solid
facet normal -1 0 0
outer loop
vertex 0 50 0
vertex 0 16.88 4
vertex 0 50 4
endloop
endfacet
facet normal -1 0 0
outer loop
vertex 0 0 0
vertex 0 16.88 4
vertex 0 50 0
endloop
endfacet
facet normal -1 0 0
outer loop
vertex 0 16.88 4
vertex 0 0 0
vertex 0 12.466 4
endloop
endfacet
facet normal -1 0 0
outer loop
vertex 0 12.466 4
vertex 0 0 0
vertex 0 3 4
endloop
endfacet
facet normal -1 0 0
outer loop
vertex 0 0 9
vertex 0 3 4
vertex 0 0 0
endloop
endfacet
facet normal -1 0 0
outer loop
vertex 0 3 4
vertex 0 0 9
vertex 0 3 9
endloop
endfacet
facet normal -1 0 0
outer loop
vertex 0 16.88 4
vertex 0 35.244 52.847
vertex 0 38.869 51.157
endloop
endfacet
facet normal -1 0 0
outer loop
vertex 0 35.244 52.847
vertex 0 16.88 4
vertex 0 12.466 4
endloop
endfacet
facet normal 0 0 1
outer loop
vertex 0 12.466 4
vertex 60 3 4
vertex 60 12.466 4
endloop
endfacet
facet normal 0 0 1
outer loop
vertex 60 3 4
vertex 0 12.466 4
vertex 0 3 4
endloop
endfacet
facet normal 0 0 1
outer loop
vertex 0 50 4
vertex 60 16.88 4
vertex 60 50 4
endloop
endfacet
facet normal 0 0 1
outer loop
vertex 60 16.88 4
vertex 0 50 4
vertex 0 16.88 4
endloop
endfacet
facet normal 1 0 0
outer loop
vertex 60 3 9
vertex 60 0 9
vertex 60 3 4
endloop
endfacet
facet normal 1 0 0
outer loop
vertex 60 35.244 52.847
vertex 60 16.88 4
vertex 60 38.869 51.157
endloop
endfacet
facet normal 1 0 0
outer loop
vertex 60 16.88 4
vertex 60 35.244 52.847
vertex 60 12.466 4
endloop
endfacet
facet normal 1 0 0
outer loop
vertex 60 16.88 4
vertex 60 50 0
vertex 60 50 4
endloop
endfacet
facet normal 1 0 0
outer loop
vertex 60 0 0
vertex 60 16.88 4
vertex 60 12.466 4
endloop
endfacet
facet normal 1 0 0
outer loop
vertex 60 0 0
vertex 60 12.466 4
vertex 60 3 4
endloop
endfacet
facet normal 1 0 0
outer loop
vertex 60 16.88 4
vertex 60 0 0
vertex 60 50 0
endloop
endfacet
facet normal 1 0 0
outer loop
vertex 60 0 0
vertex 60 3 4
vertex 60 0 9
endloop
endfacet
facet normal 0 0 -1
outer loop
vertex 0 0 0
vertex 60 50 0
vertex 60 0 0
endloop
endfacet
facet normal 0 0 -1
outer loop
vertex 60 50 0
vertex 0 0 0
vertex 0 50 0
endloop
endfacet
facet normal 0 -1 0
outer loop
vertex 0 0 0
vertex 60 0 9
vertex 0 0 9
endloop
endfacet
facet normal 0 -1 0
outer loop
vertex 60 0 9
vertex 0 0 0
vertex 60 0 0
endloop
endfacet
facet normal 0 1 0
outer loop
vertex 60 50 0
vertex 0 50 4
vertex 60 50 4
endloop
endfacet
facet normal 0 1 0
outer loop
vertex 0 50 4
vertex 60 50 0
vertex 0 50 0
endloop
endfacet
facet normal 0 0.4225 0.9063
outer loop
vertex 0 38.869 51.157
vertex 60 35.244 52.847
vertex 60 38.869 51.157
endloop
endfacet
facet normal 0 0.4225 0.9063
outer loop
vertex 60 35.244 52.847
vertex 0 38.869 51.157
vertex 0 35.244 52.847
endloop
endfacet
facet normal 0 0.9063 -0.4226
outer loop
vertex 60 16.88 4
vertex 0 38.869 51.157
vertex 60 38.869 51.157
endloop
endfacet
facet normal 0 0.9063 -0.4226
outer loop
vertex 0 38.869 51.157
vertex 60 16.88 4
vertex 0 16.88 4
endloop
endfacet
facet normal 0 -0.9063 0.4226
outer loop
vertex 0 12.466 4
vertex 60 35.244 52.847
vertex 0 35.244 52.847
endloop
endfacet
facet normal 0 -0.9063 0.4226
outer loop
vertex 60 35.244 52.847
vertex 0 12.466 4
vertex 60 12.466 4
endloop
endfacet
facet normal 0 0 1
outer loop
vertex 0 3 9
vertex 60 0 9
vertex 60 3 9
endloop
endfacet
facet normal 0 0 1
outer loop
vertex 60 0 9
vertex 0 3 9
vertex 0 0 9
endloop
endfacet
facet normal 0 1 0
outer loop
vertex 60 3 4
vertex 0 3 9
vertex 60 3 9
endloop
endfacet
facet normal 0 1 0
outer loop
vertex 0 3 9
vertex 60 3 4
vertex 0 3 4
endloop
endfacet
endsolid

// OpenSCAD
// DP-06 · Soporte inclinado 60 x 50 x 4 mm, respaldo a 65°
// Diseño e Impresión 3D en el aula · Pablo Moraga · CC BY-NC-ND 4.0
$fn = 64;
cube([60, 50, 4]);
translate([0, 12, 3]) rotate([-25, 0, 0]) cube([60, 4, 55]);
translate([0, 0, 4]) cube([60, 3, 5]);
